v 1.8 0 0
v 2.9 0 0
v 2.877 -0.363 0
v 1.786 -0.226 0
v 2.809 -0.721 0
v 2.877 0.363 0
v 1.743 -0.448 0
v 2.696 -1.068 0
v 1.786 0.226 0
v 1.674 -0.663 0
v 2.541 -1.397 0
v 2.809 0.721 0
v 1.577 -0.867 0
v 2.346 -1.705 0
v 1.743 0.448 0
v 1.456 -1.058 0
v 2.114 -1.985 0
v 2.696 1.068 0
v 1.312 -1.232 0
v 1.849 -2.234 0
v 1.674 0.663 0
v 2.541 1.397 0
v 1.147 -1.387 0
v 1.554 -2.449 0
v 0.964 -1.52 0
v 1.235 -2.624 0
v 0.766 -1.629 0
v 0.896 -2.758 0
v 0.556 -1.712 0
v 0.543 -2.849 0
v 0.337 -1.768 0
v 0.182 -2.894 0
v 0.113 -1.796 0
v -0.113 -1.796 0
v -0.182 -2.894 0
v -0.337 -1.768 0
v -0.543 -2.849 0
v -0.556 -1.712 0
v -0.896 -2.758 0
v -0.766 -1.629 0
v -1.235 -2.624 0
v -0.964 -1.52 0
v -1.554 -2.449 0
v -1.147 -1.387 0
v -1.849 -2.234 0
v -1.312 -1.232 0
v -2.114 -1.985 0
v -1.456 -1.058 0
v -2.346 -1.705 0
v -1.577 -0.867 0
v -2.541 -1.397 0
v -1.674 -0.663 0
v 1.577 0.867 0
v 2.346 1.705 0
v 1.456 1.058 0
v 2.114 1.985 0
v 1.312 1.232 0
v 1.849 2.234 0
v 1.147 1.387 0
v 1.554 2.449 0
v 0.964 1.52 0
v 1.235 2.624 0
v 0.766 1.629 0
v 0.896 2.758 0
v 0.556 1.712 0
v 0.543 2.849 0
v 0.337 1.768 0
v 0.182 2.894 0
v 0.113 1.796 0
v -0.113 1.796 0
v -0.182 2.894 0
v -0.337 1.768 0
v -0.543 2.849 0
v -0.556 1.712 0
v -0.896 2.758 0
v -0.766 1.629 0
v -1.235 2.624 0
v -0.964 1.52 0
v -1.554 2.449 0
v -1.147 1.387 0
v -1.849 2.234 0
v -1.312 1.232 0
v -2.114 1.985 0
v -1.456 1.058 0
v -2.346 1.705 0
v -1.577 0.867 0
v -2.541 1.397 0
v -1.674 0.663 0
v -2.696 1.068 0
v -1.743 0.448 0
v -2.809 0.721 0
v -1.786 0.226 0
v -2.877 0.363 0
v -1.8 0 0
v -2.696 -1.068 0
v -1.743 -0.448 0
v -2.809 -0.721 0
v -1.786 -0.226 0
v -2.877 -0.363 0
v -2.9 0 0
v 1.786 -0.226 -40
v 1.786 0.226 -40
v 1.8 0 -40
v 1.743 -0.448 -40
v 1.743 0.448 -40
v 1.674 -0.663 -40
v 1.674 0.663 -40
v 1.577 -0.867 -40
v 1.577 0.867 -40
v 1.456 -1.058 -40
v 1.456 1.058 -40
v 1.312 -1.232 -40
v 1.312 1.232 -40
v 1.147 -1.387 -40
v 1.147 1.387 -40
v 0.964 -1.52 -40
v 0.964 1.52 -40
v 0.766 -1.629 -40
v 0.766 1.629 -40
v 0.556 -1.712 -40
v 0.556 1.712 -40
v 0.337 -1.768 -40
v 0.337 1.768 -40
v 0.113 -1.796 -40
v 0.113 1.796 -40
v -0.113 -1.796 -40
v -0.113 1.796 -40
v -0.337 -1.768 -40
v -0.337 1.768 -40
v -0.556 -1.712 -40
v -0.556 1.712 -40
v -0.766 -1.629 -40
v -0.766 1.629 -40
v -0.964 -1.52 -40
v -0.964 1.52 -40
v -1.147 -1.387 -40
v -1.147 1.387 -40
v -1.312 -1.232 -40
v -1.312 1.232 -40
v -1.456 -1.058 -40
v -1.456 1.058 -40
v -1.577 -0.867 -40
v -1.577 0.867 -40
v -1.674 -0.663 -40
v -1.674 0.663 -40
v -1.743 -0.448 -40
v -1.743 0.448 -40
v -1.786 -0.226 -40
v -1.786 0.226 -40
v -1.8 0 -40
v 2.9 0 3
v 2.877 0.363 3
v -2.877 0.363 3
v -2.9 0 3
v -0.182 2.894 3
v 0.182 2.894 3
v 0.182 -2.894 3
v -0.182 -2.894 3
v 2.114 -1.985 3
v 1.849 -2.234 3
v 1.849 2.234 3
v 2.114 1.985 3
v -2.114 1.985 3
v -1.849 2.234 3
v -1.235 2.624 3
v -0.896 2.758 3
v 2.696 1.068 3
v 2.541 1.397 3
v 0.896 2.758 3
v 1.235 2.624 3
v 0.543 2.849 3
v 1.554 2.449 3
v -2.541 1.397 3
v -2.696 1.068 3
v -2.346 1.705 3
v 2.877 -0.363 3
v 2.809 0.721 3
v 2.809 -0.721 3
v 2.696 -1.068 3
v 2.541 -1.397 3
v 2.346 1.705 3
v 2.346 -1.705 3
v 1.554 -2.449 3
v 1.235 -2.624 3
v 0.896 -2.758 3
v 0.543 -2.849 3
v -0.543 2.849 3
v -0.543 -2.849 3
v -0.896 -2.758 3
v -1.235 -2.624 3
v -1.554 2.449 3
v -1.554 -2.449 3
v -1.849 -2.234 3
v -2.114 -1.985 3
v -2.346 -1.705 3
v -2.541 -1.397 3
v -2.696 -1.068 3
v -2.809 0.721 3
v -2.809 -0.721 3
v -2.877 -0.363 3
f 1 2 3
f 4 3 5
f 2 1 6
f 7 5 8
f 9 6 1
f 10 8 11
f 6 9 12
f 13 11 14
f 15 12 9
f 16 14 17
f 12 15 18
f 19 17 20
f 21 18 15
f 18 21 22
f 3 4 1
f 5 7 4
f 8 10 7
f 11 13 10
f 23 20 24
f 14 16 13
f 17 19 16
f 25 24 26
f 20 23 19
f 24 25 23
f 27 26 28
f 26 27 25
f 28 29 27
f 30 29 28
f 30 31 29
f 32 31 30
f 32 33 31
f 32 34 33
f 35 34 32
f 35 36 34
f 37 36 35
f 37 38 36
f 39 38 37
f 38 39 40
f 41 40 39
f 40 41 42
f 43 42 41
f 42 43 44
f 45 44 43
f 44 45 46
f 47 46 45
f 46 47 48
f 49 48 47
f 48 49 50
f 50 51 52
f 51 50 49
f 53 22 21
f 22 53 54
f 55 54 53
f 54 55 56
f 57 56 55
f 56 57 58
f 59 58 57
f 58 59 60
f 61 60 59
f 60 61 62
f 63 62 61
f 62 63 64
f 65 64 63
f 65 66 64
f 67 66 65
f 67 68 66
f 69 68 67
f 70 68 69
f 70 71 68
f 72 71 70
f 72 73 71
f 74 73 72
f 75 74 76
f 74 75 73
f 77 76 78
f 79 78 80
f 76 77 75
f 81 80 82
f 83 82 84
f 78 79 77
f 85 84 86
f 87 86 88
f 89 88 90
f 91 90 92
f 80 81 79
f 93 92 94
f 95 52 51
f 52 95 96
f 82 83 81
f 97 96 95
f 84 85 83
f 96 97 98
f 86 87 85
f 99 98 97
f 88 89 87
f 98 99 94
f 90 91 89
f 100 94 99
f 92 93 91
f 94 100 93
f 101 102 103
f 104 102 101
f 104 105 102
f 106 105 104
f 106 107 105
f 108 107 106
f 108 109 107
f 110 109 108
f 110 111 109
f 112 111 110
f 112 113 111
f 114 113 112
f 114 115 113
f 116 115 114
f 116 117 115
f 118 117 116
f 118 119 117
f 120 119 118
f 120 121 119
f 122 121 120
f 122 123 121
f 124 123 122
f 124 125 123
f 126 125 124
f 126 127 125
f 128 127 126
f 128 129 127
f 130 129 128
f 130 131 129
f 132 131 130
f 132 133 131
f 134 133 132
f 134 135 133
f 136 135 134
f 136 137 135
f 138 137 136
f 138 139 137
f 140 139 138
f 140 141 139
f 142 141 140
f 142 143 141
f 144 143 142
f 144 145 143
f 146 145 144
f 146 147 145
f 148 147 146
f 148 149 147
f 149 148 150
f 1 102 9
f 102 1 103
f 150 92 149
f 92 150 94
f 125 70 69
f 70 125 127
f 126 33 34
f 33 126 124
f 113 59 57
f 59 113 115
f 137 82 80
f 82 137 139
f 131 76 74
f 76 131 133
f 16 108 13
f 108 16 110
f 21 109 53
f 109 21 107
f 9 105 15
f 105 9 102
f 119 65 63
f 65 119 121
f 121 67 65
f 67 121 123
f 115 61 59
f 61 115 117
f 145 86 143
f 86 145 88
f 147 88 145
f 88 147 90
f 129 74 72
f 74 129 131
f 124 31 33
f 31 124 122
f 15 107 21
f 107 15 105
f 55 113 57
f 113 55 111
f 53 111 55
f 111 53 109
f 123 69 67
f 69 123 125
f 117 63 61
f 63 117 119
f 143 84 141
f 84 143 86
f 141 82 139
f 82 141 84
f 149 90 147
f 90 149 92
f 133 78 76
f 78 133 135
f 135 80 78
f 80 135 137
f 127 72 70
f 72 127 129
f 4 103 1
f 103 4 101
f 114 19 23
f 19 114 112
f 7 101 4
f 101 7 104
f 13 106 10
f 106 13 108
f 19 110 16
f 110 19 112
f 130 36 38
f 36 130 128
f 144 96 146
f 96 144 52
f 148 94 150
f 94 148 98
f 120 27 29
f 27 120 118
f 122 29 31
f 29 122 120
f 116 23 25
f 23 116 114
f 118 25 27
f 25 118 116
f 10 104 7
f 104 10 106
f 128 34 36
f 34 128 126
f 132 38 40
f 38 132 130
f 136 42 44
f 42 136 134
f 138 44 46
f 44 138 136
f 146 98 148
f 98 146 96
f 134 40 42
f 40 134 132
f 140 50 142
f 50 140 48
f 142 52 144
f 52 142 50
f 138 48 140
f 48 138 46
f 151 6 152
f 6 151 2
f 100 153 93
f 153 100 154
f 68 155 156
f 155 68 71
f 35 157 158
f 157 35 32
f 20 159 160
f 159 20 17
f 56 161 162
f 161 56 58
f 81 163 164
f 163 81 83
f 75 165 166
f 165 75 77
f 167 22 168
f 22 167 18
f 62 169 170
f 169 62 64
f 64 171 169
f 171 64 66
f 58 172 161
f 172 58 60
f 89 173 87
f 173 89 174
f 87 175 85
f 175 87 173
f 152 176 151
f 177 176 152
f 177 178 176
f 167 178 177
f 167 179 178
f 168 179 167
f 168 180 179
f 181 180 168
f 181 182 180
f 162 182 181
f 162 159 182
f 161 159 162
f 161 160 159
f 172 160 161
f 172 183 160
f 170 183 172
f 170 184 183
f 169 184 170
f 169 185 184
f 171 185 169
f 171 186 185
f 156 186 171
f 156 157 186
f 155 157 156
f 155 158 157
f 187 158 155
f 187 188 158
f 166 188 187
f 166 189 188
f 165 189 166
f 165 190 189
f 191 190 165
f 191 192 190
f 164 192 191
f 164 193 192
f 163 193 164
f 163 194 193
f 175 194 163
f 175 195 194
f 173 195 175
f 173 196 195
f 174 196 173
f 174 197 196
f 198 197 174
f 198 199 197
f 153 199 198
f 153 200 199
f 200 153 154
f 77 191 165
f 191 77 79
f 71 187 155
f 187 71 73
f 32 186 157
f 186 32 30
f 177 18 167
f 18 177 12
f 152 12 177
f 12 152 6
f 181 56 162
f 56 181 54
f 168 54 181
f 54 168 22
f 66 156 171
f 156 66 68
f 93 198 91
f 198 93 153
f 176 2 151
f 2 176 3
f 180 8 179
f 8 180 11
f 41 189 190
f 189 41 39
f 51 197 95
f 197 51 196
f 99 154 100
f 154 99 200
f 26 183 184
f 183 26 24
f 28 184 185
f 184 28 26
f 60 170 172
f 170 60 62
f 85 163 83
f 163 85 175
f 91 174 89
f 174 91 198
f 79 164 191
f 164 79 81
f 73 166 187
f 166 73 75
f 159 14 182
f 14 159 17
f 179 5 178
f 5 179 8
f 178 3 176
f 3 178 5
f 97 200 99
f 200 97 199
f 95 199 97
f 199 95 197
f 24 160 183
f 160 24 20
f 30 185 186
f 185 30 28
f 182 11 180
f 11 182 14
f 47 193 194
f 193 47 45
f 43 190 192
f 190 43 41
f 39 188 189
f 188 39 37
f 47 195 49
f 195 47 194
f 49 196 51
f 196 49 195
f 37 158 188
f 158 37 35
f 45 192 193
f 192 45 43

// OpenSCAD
$fn = 50;


difference() {
	union() {
		translate(v = [0, 0, 0]) {
			rotate(a = [0, 0, 0]) {
				difference() {
					union() {
						translate(v = [0, 0, -40.0000000000]) {
							cylinder(h = 40, r = 1.5000000000);
						}
						translate(v = [0, 0, -40.0000000000]) {
							cylinder(h = 40, r = 1.8000000000);
						}
						cylinder(h = 3, r = 2.9000000000);
						translate(v = [0, 0, -40.0000000000]) {
							cylinder(h = 40, r = 1.5000000000);
						}
					}
					union();
				}
			}
		}
	}
	union();
}
